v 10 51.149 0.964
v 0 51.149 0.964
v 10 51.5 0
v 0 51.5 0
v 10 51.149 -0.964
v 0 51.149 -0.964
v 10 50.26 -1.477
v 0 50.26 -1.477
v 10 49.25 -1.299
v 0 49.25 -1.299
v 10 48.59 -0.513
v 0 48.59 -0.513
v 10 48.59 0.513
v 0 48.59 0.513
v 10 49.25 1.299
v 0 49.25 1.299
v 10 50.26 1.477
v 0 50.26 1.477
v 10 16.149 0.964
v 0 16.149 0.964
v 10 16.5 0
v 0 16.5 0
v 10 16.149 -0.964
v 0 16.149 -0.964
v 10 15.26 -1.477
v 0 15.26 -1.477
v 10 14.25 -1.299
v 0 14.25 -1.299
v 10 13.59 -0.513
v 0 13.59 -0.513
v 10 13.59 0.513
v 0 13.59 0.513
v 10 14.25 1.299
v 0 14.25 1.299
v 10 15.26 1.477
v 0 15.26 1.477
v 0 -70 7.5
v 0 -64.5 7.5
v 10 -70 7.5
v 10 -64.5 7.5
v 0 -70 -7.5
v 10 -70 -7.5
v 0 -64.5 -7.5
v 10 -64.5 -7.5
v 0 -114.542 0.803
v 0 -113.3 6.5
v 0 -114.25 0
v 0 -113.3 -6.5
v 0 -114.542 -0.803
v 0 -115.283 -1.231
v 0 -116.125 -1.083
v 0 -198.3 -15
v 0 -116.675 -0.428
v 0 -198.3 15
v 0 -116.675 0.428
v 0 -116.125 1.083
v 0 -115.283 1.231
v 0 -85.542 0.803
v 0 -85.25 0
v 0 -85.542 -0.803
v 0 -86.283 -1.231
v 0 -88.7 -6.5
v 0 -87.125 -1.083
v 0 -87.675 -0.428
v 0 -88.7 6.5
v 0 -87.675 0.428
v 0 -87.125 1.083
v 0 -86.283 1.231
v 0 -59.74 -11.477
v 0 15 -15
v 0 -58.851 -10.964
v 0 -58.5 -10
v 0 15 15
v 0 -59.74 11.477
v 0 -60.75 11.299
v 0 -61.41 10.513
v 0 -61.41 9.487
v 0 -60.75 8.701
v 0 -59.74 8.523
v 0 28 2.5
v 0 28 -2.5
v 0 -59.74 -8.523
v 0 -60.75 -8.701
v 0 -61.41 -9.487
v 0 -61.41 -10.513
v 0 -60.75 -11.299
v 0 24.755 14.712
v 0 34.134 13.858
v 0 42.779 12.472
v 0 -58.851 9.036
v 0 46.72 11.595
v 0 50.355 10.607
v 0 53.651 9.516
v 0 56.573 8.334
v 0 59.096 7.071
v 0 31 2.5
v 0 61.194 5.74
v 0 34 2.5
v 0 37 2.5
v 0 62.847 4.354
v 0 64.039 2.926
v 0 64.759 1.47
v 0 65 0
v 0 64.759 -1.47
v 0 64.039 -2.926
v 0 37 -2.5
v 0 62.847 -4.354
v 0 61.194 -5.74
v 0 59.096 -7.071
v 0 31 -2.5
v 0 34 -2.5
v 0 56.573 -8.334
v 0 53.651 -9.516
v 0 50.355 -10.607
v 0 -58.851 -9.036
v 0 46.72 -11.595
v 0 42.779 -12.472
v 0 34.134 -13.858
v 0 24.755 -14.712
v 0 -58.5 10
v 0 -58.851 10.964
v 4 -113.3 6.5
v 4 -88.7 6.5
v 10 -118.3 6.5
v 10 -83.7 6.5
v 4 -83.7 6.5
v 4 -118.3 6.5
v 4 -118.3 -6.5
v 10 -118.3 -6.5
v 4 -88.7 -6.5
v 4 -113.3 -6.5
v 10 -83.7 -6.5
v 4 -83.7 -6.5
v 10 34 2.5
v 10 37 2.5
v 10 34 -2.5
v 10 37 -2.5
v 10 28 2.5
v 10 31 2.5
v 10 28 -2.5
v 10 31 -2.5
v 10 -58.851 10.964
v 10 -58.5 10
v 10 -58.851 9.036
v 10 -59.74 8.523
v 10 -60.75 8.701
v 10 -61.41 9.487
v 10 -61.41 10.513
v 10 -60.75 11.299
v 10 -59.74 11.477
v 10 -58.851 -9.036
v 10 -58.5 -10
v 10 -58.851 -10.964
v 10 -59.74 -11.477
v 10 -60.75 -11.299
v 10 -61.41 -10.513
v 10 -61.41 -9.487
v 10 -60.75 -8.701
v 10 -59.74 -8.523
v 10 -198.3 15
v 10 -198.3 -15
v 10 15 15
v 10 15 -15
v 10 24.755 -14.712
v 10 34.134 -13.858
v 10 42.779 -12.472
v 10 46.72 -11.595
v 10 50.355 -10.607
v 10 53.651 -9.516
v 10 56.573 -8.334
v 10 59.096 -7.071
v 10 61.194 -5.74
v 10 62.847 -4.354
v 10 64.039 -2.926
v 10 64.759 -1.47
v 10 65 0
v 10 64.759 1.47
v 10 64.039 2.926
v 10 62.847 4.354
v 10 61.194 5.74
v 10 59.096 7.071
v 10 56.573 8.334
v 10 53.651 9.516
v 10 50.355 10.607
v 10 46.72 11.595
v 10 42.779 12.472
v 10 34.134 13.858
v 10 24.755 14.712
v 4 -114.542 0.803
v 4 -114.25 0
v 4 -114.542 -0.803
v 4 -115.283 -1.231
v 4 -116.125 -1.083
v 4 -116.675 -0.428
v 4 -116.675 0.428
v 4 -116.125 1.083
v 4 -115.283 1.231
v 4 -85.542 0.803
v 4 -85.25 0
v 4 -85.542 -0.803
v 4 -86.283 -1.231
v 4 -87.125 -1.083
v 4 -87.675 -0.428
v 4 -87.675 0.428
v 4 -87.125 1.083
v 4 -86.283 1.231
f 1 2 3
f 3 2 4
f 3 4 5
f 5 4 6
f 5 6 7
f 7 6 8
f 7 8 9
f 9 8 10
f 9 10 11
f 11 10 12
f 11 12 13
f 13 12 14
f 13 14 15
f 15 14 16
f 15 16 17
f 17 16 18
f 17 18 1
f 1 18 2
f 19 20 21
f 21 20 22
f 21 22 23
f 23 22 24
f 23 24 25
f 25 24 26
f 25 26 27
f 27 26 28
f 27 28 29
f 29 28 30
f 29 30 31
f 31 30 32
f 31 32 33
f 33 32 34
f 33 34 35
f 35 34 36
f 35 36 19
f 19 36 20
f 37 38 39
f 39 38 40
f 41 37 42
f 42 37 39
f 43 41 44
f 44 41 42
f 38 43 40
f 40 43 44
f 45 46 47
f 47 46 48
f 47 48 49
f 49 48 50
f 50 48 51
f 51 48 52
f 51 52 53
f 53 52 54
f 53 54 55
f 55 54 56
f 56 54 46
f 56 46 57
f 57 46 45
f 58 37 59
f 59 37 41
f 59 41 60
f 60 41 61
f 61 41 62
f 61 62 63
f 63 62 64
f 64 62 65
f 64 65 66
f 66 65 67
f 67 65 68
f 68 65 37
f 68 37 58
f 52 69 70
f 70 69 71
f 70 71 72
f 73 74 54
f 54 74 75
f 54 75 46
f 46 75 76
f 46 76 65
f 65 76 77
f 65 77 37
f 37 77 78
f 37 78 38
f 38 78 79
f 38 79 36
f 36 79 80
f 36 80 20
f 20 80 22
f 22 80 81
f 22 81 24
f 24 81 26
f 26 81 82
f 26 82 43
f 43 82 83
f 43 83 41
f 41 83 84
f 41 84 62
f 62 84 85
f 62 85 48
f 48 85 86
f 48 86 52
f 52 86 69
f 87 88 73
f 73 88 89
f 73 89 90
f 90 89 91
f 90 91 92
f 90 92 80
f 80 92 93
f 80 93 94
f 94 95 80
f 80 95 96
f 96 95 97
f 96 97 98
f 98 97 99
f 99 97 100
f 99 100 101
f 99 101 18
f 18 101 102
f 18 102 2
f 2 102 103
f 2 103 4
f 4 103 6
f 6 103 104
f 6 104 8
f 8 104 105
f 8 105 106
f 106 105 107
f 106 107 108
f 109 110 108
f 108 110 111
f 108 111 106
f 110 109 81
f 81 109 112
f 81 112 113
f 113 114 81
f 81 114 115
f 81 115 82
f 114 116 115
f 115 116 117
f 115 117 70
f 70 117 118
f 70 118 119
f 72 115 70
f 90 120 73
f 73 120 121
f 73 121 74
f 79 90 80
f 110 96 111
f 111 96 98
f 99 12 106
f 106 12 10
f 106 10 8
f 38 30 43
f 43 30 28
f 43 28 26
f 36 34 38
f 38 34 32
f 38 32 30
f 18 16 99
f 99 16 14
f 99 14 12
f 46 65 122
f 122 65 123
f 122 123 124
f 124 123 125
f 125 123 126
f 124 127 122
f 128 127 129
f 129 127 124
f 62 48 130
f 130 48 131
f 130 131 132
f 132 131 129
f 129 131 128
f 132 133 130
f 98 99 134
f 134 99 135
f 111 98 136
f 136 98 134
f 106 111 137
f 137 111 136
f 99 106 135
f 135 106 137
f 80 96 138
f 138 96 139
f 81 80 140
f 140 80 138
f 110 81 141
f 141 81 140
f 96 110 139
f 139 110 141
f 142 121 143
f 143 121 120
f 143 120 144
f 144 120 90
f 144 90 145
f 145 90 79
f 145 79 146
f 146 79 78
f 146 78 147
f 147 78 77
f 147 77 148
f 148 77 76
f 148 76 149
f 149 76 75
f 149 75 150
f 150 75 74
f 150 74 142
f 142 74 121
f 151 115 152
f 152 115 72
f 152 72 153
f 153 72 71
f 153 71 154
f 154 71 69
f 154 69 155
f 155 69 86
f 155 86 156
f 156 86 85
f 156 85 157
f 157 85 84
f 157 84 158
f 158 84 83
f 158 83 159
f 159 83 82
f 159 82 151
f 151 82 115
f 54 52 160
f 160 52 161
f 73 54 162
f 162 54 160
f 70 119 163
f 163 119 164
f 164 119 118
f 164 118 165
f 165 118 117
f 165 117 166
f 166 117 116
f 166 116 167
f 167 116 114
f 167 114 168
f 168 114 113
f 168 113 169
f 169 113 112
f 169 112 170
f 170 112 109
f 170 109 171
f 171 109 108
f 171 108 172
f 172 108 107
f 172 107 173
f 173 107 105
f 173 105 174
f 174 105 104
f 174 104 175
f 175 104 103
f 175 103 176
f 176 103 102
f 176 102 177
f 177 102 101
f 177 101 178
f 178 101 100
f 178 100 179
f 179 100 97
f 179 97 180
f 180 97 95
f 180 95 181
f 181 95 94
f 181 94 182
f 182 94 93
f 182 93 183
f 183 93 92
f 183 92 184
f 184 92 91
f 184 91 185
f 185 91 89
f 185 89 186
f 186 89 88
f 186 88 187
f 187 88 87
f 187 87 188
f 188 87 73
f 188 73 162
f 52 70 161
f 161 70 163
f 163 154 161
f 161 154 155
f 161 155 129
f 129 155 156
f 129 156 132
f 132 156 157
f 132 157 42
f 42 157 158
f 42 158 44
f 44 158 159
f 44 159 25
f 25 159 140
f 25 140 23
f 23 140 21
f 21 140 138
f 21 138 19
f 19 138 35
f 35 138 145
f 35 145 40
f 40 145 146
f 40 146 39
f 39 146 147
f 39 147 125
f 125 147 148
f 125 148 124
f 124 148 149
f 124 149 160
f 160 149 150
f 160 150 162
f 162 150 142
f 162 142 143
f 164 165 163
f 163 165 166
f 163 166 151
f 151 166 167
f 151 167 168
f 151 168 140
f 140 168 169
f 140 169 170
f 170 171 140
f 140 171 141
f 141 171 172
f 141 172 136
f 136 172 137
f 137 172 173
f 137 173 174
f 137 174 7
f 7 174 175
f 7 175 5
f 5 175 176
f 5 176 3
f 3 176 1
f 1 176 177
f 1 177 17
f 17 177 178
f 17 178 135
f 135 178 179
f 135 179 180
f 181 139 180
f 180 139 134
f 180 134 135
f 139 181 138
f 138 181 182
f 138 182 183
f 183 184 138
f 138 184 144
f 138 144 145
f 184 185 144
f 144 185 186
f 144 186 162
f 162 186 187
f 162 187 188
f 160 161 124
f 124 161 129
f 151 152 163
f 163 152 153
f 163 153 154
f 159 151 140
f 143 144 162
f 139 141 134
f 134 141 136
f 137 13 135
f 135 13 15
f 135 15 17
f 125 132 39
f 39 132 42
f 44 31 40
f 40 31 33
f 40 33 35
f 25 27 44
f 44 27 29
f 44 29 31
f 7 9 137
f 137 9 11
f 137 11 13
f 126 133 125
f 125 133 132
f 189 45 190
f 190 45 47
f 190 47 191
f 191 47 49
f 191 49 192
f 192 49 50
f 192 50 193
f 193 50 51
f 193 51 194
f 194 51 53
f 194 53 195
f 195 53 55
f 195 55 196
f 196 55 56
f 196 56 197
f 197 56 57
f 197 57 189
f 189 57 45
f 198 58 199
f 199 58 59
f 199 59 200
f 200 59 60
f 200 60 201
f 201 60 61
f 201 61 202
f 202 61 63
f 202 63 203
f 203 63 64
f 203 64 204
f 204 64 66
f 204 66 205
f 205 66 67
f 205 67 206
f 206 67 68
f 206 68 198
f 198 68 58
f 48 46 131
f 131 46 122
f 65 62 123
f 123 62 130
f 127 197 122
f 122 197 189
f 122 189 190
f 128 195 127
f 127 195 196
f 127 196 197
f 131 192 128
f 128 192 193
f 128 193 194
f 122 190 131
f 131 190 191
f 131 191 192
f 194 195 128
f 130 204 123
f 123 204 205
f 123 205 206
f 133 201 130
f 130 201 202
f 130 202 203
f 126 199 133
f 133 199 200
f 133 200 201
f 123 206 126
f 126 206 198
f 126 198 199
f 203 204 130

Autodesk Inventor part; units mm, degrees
ref_plane "YZ Plane" through (0, 0, 0) normal (1, 0, 0) x (0, 1, 0)
ref_plane "XZ Plane" through (0, 0, 0) normal (0, 1, 0) x (-1, 0, 0)
ref_plane "XY Plane" through (0, 0, 0) normal (0, 0, 1) x (1, 0, 0)
sketch "Szkic1" plane through (0, 0, 0) normal (1, 0, 0) x (0, 1, 0)
  line L0 (0, 0) -> (15, 0) construction
  line L1 (15, 0) -> (50, 0) construction
  line L2 (50, 0) -> (65, 0) construction
  line L3 (0, 0) -> (-50, 0) construction
  line L4 (-50, 0) -> (-60, 0) construction
  line L5 (-60, 10) -> (-60, -10) construction
  circle A0 centre (50, 0) radius 1.5
  circle A1 centre (15, 0) radius 1.5
  circle A2 centre (-60, -10) radius 1.5
  circle A3 centre (-60, 10) radius 1.5
  line L6 (-60, 0) -> (-64.5, 0) construction
  line L7 (-64.5, 0) -> (-70, 0) construction
  line L8 (-70, 0) -> (-95, 0) construction
  line L9 (-64.5, 7.5) -> (-64.5, -7.5)
  line L10 (-64.5, -7.5) -> (-70, -7.5)
  line L11 (-70, -7.5) -> (-70, 7.5)
  line L12 (-70, 7.5) -> (-64.5, 7.5)
  circle A4 centre (-95, 0) radius 2.5 construction
  line L13 (-95, 0) -> (-89, 0) construction
  line L14 (-89, 0) -> (-86.5, 0) construction
  line L15 (-86.5, 0) -> (-84, 0) construction
  circle A5 centre (-86.5, 0) radius 1.25
  line L16 (-95, 0) -> (-113, 0) construction
  line L17 (-113, 0) -> (-115.5, 0) construction
  line L18 (-115.5, 0) -> (-118, 0) construction
  circle A6 centre (-115.5, 0) radius 1.25
  line L19 (-89, 0) -> (-88.7, 0) construction
  line L20 (-113, 0) -> (-113.3, 0) construction
  line L21 (-113.3, 6.5) -> (-113.3, -6.5)
  line L22 (-113.3, -6.5) -> (-88.7, -6.5)
  line L23 (-88.7, -6.5) -> (-88.7, 6.5)
  line L24 (-88.7, 6.5) -> (-113.3, 6.5)
  line L25 (-84, 0) -> (-83.7, 0) construction
  line L26 (-83.7, 6.5) -> (-83.7, -6.5)
  line L27 (-83.7, -6.5) -> (-88.7, -6.5)
  line L28 (-83.7, 6.5) -> (-88.7, 6.5)
  line L29 (-118, 0) -> (-118.3, 0) construction
  line L30 (-118.3, 6.5) -> (-118.3, -6.5)
  line L31 (-118.3, -6.5) -> (-113.3, -6.5)
  line L32 (-113.3, 6.5) -> (-118.3, 6.5)
  line L33 (-118.3, 0) -> (-198.3, 0) construction
  line L34 (15, 15) -> (15, -15) construction
  line L35 (50, 0) -> (37, 0) construction
  line L36 (37, 2.5) -> (37, -2.5)
  line L37 (37, -2.5) -> (34, -2.5)
  line L38 (34, -2.5) -> (34, 2.5)
  line L39 (34, 2.5) -> (37, 2.5)
  line L40 (34, 0) -> (31, 0) construction
  line L41 (31, 2.5) -> (31, -2.5)
  line L42 (31, -2.5) -> (28, -2.5)
  line L43 (28, -2.5) -> (28, 2.5)
  line L44 (28, 2.5) -> (31, 2.5)
  line L45 (-198.3, 15) -> (-198.3, -15)
  line L46 (-198.3, -15) -> (15, -15)
  line L47 (15, 15) -> (-198.3, 15)
  ellipse E0 centre (15, 0) end of major axis (15, 15) minor radius 50 (15, -15) -> (15, 15) ccw
  dimension "d0" = 15
  dimension "d1" = 35
  dimension "d2" = 15
  dimension "d3" = 50
  dimension "d4" = 10
  dimension "d5" = 20
  dimension "d6" = 3
  dimension "d7" = 3
  dimension "d8" = 3
  dimension "d9" = 3
  dimension "d10" = 4.5
  dimension "d11" = 5.5
  dimension "d12" = 25
  dimension "d13" = 15
  dimension "d14" = 5.5
  dimension "d15" = 5
  dimension "d16" = 6
  dimension "d17" = 2.5
  dimension "d18" = 2.5
  dimension "d19" = 2.5
  dimension "d20" = 18
  dimension "d21" = 2.5
  dimension "d22" = 2.5
  dimension "d23" = 2.5
  dimension "d24" = 0.3
  dimension "d25" = 0.3
  dimension "d26" = 13
  dimension "d27" = 24.6
  dimension "d28" = 0.3
  dimension "d29" = 0.3
  dimension "d30" = 80
  dimension "d31" = 30
  dimension "d32" = 13
  dimension "d33" = 5
  dimension "d34" = 3
  dimension "d35" = 3
  dimension "d36" = 5
  dimension "d37" = 3
  dimension "d38" = 30
  dimension "d39" = 213.3
extrude "Wyciągnięcie proste1" add sketch "Szkic1" along normal blind 10 contours L47 E0 L46 L45
extrude "Wyciągnięcie proste2" add sketch "Szkic1" along normal blind 4 contours L21 L31 L30 L32 | L28 L26 L27 L23
properties part number "008-002"
